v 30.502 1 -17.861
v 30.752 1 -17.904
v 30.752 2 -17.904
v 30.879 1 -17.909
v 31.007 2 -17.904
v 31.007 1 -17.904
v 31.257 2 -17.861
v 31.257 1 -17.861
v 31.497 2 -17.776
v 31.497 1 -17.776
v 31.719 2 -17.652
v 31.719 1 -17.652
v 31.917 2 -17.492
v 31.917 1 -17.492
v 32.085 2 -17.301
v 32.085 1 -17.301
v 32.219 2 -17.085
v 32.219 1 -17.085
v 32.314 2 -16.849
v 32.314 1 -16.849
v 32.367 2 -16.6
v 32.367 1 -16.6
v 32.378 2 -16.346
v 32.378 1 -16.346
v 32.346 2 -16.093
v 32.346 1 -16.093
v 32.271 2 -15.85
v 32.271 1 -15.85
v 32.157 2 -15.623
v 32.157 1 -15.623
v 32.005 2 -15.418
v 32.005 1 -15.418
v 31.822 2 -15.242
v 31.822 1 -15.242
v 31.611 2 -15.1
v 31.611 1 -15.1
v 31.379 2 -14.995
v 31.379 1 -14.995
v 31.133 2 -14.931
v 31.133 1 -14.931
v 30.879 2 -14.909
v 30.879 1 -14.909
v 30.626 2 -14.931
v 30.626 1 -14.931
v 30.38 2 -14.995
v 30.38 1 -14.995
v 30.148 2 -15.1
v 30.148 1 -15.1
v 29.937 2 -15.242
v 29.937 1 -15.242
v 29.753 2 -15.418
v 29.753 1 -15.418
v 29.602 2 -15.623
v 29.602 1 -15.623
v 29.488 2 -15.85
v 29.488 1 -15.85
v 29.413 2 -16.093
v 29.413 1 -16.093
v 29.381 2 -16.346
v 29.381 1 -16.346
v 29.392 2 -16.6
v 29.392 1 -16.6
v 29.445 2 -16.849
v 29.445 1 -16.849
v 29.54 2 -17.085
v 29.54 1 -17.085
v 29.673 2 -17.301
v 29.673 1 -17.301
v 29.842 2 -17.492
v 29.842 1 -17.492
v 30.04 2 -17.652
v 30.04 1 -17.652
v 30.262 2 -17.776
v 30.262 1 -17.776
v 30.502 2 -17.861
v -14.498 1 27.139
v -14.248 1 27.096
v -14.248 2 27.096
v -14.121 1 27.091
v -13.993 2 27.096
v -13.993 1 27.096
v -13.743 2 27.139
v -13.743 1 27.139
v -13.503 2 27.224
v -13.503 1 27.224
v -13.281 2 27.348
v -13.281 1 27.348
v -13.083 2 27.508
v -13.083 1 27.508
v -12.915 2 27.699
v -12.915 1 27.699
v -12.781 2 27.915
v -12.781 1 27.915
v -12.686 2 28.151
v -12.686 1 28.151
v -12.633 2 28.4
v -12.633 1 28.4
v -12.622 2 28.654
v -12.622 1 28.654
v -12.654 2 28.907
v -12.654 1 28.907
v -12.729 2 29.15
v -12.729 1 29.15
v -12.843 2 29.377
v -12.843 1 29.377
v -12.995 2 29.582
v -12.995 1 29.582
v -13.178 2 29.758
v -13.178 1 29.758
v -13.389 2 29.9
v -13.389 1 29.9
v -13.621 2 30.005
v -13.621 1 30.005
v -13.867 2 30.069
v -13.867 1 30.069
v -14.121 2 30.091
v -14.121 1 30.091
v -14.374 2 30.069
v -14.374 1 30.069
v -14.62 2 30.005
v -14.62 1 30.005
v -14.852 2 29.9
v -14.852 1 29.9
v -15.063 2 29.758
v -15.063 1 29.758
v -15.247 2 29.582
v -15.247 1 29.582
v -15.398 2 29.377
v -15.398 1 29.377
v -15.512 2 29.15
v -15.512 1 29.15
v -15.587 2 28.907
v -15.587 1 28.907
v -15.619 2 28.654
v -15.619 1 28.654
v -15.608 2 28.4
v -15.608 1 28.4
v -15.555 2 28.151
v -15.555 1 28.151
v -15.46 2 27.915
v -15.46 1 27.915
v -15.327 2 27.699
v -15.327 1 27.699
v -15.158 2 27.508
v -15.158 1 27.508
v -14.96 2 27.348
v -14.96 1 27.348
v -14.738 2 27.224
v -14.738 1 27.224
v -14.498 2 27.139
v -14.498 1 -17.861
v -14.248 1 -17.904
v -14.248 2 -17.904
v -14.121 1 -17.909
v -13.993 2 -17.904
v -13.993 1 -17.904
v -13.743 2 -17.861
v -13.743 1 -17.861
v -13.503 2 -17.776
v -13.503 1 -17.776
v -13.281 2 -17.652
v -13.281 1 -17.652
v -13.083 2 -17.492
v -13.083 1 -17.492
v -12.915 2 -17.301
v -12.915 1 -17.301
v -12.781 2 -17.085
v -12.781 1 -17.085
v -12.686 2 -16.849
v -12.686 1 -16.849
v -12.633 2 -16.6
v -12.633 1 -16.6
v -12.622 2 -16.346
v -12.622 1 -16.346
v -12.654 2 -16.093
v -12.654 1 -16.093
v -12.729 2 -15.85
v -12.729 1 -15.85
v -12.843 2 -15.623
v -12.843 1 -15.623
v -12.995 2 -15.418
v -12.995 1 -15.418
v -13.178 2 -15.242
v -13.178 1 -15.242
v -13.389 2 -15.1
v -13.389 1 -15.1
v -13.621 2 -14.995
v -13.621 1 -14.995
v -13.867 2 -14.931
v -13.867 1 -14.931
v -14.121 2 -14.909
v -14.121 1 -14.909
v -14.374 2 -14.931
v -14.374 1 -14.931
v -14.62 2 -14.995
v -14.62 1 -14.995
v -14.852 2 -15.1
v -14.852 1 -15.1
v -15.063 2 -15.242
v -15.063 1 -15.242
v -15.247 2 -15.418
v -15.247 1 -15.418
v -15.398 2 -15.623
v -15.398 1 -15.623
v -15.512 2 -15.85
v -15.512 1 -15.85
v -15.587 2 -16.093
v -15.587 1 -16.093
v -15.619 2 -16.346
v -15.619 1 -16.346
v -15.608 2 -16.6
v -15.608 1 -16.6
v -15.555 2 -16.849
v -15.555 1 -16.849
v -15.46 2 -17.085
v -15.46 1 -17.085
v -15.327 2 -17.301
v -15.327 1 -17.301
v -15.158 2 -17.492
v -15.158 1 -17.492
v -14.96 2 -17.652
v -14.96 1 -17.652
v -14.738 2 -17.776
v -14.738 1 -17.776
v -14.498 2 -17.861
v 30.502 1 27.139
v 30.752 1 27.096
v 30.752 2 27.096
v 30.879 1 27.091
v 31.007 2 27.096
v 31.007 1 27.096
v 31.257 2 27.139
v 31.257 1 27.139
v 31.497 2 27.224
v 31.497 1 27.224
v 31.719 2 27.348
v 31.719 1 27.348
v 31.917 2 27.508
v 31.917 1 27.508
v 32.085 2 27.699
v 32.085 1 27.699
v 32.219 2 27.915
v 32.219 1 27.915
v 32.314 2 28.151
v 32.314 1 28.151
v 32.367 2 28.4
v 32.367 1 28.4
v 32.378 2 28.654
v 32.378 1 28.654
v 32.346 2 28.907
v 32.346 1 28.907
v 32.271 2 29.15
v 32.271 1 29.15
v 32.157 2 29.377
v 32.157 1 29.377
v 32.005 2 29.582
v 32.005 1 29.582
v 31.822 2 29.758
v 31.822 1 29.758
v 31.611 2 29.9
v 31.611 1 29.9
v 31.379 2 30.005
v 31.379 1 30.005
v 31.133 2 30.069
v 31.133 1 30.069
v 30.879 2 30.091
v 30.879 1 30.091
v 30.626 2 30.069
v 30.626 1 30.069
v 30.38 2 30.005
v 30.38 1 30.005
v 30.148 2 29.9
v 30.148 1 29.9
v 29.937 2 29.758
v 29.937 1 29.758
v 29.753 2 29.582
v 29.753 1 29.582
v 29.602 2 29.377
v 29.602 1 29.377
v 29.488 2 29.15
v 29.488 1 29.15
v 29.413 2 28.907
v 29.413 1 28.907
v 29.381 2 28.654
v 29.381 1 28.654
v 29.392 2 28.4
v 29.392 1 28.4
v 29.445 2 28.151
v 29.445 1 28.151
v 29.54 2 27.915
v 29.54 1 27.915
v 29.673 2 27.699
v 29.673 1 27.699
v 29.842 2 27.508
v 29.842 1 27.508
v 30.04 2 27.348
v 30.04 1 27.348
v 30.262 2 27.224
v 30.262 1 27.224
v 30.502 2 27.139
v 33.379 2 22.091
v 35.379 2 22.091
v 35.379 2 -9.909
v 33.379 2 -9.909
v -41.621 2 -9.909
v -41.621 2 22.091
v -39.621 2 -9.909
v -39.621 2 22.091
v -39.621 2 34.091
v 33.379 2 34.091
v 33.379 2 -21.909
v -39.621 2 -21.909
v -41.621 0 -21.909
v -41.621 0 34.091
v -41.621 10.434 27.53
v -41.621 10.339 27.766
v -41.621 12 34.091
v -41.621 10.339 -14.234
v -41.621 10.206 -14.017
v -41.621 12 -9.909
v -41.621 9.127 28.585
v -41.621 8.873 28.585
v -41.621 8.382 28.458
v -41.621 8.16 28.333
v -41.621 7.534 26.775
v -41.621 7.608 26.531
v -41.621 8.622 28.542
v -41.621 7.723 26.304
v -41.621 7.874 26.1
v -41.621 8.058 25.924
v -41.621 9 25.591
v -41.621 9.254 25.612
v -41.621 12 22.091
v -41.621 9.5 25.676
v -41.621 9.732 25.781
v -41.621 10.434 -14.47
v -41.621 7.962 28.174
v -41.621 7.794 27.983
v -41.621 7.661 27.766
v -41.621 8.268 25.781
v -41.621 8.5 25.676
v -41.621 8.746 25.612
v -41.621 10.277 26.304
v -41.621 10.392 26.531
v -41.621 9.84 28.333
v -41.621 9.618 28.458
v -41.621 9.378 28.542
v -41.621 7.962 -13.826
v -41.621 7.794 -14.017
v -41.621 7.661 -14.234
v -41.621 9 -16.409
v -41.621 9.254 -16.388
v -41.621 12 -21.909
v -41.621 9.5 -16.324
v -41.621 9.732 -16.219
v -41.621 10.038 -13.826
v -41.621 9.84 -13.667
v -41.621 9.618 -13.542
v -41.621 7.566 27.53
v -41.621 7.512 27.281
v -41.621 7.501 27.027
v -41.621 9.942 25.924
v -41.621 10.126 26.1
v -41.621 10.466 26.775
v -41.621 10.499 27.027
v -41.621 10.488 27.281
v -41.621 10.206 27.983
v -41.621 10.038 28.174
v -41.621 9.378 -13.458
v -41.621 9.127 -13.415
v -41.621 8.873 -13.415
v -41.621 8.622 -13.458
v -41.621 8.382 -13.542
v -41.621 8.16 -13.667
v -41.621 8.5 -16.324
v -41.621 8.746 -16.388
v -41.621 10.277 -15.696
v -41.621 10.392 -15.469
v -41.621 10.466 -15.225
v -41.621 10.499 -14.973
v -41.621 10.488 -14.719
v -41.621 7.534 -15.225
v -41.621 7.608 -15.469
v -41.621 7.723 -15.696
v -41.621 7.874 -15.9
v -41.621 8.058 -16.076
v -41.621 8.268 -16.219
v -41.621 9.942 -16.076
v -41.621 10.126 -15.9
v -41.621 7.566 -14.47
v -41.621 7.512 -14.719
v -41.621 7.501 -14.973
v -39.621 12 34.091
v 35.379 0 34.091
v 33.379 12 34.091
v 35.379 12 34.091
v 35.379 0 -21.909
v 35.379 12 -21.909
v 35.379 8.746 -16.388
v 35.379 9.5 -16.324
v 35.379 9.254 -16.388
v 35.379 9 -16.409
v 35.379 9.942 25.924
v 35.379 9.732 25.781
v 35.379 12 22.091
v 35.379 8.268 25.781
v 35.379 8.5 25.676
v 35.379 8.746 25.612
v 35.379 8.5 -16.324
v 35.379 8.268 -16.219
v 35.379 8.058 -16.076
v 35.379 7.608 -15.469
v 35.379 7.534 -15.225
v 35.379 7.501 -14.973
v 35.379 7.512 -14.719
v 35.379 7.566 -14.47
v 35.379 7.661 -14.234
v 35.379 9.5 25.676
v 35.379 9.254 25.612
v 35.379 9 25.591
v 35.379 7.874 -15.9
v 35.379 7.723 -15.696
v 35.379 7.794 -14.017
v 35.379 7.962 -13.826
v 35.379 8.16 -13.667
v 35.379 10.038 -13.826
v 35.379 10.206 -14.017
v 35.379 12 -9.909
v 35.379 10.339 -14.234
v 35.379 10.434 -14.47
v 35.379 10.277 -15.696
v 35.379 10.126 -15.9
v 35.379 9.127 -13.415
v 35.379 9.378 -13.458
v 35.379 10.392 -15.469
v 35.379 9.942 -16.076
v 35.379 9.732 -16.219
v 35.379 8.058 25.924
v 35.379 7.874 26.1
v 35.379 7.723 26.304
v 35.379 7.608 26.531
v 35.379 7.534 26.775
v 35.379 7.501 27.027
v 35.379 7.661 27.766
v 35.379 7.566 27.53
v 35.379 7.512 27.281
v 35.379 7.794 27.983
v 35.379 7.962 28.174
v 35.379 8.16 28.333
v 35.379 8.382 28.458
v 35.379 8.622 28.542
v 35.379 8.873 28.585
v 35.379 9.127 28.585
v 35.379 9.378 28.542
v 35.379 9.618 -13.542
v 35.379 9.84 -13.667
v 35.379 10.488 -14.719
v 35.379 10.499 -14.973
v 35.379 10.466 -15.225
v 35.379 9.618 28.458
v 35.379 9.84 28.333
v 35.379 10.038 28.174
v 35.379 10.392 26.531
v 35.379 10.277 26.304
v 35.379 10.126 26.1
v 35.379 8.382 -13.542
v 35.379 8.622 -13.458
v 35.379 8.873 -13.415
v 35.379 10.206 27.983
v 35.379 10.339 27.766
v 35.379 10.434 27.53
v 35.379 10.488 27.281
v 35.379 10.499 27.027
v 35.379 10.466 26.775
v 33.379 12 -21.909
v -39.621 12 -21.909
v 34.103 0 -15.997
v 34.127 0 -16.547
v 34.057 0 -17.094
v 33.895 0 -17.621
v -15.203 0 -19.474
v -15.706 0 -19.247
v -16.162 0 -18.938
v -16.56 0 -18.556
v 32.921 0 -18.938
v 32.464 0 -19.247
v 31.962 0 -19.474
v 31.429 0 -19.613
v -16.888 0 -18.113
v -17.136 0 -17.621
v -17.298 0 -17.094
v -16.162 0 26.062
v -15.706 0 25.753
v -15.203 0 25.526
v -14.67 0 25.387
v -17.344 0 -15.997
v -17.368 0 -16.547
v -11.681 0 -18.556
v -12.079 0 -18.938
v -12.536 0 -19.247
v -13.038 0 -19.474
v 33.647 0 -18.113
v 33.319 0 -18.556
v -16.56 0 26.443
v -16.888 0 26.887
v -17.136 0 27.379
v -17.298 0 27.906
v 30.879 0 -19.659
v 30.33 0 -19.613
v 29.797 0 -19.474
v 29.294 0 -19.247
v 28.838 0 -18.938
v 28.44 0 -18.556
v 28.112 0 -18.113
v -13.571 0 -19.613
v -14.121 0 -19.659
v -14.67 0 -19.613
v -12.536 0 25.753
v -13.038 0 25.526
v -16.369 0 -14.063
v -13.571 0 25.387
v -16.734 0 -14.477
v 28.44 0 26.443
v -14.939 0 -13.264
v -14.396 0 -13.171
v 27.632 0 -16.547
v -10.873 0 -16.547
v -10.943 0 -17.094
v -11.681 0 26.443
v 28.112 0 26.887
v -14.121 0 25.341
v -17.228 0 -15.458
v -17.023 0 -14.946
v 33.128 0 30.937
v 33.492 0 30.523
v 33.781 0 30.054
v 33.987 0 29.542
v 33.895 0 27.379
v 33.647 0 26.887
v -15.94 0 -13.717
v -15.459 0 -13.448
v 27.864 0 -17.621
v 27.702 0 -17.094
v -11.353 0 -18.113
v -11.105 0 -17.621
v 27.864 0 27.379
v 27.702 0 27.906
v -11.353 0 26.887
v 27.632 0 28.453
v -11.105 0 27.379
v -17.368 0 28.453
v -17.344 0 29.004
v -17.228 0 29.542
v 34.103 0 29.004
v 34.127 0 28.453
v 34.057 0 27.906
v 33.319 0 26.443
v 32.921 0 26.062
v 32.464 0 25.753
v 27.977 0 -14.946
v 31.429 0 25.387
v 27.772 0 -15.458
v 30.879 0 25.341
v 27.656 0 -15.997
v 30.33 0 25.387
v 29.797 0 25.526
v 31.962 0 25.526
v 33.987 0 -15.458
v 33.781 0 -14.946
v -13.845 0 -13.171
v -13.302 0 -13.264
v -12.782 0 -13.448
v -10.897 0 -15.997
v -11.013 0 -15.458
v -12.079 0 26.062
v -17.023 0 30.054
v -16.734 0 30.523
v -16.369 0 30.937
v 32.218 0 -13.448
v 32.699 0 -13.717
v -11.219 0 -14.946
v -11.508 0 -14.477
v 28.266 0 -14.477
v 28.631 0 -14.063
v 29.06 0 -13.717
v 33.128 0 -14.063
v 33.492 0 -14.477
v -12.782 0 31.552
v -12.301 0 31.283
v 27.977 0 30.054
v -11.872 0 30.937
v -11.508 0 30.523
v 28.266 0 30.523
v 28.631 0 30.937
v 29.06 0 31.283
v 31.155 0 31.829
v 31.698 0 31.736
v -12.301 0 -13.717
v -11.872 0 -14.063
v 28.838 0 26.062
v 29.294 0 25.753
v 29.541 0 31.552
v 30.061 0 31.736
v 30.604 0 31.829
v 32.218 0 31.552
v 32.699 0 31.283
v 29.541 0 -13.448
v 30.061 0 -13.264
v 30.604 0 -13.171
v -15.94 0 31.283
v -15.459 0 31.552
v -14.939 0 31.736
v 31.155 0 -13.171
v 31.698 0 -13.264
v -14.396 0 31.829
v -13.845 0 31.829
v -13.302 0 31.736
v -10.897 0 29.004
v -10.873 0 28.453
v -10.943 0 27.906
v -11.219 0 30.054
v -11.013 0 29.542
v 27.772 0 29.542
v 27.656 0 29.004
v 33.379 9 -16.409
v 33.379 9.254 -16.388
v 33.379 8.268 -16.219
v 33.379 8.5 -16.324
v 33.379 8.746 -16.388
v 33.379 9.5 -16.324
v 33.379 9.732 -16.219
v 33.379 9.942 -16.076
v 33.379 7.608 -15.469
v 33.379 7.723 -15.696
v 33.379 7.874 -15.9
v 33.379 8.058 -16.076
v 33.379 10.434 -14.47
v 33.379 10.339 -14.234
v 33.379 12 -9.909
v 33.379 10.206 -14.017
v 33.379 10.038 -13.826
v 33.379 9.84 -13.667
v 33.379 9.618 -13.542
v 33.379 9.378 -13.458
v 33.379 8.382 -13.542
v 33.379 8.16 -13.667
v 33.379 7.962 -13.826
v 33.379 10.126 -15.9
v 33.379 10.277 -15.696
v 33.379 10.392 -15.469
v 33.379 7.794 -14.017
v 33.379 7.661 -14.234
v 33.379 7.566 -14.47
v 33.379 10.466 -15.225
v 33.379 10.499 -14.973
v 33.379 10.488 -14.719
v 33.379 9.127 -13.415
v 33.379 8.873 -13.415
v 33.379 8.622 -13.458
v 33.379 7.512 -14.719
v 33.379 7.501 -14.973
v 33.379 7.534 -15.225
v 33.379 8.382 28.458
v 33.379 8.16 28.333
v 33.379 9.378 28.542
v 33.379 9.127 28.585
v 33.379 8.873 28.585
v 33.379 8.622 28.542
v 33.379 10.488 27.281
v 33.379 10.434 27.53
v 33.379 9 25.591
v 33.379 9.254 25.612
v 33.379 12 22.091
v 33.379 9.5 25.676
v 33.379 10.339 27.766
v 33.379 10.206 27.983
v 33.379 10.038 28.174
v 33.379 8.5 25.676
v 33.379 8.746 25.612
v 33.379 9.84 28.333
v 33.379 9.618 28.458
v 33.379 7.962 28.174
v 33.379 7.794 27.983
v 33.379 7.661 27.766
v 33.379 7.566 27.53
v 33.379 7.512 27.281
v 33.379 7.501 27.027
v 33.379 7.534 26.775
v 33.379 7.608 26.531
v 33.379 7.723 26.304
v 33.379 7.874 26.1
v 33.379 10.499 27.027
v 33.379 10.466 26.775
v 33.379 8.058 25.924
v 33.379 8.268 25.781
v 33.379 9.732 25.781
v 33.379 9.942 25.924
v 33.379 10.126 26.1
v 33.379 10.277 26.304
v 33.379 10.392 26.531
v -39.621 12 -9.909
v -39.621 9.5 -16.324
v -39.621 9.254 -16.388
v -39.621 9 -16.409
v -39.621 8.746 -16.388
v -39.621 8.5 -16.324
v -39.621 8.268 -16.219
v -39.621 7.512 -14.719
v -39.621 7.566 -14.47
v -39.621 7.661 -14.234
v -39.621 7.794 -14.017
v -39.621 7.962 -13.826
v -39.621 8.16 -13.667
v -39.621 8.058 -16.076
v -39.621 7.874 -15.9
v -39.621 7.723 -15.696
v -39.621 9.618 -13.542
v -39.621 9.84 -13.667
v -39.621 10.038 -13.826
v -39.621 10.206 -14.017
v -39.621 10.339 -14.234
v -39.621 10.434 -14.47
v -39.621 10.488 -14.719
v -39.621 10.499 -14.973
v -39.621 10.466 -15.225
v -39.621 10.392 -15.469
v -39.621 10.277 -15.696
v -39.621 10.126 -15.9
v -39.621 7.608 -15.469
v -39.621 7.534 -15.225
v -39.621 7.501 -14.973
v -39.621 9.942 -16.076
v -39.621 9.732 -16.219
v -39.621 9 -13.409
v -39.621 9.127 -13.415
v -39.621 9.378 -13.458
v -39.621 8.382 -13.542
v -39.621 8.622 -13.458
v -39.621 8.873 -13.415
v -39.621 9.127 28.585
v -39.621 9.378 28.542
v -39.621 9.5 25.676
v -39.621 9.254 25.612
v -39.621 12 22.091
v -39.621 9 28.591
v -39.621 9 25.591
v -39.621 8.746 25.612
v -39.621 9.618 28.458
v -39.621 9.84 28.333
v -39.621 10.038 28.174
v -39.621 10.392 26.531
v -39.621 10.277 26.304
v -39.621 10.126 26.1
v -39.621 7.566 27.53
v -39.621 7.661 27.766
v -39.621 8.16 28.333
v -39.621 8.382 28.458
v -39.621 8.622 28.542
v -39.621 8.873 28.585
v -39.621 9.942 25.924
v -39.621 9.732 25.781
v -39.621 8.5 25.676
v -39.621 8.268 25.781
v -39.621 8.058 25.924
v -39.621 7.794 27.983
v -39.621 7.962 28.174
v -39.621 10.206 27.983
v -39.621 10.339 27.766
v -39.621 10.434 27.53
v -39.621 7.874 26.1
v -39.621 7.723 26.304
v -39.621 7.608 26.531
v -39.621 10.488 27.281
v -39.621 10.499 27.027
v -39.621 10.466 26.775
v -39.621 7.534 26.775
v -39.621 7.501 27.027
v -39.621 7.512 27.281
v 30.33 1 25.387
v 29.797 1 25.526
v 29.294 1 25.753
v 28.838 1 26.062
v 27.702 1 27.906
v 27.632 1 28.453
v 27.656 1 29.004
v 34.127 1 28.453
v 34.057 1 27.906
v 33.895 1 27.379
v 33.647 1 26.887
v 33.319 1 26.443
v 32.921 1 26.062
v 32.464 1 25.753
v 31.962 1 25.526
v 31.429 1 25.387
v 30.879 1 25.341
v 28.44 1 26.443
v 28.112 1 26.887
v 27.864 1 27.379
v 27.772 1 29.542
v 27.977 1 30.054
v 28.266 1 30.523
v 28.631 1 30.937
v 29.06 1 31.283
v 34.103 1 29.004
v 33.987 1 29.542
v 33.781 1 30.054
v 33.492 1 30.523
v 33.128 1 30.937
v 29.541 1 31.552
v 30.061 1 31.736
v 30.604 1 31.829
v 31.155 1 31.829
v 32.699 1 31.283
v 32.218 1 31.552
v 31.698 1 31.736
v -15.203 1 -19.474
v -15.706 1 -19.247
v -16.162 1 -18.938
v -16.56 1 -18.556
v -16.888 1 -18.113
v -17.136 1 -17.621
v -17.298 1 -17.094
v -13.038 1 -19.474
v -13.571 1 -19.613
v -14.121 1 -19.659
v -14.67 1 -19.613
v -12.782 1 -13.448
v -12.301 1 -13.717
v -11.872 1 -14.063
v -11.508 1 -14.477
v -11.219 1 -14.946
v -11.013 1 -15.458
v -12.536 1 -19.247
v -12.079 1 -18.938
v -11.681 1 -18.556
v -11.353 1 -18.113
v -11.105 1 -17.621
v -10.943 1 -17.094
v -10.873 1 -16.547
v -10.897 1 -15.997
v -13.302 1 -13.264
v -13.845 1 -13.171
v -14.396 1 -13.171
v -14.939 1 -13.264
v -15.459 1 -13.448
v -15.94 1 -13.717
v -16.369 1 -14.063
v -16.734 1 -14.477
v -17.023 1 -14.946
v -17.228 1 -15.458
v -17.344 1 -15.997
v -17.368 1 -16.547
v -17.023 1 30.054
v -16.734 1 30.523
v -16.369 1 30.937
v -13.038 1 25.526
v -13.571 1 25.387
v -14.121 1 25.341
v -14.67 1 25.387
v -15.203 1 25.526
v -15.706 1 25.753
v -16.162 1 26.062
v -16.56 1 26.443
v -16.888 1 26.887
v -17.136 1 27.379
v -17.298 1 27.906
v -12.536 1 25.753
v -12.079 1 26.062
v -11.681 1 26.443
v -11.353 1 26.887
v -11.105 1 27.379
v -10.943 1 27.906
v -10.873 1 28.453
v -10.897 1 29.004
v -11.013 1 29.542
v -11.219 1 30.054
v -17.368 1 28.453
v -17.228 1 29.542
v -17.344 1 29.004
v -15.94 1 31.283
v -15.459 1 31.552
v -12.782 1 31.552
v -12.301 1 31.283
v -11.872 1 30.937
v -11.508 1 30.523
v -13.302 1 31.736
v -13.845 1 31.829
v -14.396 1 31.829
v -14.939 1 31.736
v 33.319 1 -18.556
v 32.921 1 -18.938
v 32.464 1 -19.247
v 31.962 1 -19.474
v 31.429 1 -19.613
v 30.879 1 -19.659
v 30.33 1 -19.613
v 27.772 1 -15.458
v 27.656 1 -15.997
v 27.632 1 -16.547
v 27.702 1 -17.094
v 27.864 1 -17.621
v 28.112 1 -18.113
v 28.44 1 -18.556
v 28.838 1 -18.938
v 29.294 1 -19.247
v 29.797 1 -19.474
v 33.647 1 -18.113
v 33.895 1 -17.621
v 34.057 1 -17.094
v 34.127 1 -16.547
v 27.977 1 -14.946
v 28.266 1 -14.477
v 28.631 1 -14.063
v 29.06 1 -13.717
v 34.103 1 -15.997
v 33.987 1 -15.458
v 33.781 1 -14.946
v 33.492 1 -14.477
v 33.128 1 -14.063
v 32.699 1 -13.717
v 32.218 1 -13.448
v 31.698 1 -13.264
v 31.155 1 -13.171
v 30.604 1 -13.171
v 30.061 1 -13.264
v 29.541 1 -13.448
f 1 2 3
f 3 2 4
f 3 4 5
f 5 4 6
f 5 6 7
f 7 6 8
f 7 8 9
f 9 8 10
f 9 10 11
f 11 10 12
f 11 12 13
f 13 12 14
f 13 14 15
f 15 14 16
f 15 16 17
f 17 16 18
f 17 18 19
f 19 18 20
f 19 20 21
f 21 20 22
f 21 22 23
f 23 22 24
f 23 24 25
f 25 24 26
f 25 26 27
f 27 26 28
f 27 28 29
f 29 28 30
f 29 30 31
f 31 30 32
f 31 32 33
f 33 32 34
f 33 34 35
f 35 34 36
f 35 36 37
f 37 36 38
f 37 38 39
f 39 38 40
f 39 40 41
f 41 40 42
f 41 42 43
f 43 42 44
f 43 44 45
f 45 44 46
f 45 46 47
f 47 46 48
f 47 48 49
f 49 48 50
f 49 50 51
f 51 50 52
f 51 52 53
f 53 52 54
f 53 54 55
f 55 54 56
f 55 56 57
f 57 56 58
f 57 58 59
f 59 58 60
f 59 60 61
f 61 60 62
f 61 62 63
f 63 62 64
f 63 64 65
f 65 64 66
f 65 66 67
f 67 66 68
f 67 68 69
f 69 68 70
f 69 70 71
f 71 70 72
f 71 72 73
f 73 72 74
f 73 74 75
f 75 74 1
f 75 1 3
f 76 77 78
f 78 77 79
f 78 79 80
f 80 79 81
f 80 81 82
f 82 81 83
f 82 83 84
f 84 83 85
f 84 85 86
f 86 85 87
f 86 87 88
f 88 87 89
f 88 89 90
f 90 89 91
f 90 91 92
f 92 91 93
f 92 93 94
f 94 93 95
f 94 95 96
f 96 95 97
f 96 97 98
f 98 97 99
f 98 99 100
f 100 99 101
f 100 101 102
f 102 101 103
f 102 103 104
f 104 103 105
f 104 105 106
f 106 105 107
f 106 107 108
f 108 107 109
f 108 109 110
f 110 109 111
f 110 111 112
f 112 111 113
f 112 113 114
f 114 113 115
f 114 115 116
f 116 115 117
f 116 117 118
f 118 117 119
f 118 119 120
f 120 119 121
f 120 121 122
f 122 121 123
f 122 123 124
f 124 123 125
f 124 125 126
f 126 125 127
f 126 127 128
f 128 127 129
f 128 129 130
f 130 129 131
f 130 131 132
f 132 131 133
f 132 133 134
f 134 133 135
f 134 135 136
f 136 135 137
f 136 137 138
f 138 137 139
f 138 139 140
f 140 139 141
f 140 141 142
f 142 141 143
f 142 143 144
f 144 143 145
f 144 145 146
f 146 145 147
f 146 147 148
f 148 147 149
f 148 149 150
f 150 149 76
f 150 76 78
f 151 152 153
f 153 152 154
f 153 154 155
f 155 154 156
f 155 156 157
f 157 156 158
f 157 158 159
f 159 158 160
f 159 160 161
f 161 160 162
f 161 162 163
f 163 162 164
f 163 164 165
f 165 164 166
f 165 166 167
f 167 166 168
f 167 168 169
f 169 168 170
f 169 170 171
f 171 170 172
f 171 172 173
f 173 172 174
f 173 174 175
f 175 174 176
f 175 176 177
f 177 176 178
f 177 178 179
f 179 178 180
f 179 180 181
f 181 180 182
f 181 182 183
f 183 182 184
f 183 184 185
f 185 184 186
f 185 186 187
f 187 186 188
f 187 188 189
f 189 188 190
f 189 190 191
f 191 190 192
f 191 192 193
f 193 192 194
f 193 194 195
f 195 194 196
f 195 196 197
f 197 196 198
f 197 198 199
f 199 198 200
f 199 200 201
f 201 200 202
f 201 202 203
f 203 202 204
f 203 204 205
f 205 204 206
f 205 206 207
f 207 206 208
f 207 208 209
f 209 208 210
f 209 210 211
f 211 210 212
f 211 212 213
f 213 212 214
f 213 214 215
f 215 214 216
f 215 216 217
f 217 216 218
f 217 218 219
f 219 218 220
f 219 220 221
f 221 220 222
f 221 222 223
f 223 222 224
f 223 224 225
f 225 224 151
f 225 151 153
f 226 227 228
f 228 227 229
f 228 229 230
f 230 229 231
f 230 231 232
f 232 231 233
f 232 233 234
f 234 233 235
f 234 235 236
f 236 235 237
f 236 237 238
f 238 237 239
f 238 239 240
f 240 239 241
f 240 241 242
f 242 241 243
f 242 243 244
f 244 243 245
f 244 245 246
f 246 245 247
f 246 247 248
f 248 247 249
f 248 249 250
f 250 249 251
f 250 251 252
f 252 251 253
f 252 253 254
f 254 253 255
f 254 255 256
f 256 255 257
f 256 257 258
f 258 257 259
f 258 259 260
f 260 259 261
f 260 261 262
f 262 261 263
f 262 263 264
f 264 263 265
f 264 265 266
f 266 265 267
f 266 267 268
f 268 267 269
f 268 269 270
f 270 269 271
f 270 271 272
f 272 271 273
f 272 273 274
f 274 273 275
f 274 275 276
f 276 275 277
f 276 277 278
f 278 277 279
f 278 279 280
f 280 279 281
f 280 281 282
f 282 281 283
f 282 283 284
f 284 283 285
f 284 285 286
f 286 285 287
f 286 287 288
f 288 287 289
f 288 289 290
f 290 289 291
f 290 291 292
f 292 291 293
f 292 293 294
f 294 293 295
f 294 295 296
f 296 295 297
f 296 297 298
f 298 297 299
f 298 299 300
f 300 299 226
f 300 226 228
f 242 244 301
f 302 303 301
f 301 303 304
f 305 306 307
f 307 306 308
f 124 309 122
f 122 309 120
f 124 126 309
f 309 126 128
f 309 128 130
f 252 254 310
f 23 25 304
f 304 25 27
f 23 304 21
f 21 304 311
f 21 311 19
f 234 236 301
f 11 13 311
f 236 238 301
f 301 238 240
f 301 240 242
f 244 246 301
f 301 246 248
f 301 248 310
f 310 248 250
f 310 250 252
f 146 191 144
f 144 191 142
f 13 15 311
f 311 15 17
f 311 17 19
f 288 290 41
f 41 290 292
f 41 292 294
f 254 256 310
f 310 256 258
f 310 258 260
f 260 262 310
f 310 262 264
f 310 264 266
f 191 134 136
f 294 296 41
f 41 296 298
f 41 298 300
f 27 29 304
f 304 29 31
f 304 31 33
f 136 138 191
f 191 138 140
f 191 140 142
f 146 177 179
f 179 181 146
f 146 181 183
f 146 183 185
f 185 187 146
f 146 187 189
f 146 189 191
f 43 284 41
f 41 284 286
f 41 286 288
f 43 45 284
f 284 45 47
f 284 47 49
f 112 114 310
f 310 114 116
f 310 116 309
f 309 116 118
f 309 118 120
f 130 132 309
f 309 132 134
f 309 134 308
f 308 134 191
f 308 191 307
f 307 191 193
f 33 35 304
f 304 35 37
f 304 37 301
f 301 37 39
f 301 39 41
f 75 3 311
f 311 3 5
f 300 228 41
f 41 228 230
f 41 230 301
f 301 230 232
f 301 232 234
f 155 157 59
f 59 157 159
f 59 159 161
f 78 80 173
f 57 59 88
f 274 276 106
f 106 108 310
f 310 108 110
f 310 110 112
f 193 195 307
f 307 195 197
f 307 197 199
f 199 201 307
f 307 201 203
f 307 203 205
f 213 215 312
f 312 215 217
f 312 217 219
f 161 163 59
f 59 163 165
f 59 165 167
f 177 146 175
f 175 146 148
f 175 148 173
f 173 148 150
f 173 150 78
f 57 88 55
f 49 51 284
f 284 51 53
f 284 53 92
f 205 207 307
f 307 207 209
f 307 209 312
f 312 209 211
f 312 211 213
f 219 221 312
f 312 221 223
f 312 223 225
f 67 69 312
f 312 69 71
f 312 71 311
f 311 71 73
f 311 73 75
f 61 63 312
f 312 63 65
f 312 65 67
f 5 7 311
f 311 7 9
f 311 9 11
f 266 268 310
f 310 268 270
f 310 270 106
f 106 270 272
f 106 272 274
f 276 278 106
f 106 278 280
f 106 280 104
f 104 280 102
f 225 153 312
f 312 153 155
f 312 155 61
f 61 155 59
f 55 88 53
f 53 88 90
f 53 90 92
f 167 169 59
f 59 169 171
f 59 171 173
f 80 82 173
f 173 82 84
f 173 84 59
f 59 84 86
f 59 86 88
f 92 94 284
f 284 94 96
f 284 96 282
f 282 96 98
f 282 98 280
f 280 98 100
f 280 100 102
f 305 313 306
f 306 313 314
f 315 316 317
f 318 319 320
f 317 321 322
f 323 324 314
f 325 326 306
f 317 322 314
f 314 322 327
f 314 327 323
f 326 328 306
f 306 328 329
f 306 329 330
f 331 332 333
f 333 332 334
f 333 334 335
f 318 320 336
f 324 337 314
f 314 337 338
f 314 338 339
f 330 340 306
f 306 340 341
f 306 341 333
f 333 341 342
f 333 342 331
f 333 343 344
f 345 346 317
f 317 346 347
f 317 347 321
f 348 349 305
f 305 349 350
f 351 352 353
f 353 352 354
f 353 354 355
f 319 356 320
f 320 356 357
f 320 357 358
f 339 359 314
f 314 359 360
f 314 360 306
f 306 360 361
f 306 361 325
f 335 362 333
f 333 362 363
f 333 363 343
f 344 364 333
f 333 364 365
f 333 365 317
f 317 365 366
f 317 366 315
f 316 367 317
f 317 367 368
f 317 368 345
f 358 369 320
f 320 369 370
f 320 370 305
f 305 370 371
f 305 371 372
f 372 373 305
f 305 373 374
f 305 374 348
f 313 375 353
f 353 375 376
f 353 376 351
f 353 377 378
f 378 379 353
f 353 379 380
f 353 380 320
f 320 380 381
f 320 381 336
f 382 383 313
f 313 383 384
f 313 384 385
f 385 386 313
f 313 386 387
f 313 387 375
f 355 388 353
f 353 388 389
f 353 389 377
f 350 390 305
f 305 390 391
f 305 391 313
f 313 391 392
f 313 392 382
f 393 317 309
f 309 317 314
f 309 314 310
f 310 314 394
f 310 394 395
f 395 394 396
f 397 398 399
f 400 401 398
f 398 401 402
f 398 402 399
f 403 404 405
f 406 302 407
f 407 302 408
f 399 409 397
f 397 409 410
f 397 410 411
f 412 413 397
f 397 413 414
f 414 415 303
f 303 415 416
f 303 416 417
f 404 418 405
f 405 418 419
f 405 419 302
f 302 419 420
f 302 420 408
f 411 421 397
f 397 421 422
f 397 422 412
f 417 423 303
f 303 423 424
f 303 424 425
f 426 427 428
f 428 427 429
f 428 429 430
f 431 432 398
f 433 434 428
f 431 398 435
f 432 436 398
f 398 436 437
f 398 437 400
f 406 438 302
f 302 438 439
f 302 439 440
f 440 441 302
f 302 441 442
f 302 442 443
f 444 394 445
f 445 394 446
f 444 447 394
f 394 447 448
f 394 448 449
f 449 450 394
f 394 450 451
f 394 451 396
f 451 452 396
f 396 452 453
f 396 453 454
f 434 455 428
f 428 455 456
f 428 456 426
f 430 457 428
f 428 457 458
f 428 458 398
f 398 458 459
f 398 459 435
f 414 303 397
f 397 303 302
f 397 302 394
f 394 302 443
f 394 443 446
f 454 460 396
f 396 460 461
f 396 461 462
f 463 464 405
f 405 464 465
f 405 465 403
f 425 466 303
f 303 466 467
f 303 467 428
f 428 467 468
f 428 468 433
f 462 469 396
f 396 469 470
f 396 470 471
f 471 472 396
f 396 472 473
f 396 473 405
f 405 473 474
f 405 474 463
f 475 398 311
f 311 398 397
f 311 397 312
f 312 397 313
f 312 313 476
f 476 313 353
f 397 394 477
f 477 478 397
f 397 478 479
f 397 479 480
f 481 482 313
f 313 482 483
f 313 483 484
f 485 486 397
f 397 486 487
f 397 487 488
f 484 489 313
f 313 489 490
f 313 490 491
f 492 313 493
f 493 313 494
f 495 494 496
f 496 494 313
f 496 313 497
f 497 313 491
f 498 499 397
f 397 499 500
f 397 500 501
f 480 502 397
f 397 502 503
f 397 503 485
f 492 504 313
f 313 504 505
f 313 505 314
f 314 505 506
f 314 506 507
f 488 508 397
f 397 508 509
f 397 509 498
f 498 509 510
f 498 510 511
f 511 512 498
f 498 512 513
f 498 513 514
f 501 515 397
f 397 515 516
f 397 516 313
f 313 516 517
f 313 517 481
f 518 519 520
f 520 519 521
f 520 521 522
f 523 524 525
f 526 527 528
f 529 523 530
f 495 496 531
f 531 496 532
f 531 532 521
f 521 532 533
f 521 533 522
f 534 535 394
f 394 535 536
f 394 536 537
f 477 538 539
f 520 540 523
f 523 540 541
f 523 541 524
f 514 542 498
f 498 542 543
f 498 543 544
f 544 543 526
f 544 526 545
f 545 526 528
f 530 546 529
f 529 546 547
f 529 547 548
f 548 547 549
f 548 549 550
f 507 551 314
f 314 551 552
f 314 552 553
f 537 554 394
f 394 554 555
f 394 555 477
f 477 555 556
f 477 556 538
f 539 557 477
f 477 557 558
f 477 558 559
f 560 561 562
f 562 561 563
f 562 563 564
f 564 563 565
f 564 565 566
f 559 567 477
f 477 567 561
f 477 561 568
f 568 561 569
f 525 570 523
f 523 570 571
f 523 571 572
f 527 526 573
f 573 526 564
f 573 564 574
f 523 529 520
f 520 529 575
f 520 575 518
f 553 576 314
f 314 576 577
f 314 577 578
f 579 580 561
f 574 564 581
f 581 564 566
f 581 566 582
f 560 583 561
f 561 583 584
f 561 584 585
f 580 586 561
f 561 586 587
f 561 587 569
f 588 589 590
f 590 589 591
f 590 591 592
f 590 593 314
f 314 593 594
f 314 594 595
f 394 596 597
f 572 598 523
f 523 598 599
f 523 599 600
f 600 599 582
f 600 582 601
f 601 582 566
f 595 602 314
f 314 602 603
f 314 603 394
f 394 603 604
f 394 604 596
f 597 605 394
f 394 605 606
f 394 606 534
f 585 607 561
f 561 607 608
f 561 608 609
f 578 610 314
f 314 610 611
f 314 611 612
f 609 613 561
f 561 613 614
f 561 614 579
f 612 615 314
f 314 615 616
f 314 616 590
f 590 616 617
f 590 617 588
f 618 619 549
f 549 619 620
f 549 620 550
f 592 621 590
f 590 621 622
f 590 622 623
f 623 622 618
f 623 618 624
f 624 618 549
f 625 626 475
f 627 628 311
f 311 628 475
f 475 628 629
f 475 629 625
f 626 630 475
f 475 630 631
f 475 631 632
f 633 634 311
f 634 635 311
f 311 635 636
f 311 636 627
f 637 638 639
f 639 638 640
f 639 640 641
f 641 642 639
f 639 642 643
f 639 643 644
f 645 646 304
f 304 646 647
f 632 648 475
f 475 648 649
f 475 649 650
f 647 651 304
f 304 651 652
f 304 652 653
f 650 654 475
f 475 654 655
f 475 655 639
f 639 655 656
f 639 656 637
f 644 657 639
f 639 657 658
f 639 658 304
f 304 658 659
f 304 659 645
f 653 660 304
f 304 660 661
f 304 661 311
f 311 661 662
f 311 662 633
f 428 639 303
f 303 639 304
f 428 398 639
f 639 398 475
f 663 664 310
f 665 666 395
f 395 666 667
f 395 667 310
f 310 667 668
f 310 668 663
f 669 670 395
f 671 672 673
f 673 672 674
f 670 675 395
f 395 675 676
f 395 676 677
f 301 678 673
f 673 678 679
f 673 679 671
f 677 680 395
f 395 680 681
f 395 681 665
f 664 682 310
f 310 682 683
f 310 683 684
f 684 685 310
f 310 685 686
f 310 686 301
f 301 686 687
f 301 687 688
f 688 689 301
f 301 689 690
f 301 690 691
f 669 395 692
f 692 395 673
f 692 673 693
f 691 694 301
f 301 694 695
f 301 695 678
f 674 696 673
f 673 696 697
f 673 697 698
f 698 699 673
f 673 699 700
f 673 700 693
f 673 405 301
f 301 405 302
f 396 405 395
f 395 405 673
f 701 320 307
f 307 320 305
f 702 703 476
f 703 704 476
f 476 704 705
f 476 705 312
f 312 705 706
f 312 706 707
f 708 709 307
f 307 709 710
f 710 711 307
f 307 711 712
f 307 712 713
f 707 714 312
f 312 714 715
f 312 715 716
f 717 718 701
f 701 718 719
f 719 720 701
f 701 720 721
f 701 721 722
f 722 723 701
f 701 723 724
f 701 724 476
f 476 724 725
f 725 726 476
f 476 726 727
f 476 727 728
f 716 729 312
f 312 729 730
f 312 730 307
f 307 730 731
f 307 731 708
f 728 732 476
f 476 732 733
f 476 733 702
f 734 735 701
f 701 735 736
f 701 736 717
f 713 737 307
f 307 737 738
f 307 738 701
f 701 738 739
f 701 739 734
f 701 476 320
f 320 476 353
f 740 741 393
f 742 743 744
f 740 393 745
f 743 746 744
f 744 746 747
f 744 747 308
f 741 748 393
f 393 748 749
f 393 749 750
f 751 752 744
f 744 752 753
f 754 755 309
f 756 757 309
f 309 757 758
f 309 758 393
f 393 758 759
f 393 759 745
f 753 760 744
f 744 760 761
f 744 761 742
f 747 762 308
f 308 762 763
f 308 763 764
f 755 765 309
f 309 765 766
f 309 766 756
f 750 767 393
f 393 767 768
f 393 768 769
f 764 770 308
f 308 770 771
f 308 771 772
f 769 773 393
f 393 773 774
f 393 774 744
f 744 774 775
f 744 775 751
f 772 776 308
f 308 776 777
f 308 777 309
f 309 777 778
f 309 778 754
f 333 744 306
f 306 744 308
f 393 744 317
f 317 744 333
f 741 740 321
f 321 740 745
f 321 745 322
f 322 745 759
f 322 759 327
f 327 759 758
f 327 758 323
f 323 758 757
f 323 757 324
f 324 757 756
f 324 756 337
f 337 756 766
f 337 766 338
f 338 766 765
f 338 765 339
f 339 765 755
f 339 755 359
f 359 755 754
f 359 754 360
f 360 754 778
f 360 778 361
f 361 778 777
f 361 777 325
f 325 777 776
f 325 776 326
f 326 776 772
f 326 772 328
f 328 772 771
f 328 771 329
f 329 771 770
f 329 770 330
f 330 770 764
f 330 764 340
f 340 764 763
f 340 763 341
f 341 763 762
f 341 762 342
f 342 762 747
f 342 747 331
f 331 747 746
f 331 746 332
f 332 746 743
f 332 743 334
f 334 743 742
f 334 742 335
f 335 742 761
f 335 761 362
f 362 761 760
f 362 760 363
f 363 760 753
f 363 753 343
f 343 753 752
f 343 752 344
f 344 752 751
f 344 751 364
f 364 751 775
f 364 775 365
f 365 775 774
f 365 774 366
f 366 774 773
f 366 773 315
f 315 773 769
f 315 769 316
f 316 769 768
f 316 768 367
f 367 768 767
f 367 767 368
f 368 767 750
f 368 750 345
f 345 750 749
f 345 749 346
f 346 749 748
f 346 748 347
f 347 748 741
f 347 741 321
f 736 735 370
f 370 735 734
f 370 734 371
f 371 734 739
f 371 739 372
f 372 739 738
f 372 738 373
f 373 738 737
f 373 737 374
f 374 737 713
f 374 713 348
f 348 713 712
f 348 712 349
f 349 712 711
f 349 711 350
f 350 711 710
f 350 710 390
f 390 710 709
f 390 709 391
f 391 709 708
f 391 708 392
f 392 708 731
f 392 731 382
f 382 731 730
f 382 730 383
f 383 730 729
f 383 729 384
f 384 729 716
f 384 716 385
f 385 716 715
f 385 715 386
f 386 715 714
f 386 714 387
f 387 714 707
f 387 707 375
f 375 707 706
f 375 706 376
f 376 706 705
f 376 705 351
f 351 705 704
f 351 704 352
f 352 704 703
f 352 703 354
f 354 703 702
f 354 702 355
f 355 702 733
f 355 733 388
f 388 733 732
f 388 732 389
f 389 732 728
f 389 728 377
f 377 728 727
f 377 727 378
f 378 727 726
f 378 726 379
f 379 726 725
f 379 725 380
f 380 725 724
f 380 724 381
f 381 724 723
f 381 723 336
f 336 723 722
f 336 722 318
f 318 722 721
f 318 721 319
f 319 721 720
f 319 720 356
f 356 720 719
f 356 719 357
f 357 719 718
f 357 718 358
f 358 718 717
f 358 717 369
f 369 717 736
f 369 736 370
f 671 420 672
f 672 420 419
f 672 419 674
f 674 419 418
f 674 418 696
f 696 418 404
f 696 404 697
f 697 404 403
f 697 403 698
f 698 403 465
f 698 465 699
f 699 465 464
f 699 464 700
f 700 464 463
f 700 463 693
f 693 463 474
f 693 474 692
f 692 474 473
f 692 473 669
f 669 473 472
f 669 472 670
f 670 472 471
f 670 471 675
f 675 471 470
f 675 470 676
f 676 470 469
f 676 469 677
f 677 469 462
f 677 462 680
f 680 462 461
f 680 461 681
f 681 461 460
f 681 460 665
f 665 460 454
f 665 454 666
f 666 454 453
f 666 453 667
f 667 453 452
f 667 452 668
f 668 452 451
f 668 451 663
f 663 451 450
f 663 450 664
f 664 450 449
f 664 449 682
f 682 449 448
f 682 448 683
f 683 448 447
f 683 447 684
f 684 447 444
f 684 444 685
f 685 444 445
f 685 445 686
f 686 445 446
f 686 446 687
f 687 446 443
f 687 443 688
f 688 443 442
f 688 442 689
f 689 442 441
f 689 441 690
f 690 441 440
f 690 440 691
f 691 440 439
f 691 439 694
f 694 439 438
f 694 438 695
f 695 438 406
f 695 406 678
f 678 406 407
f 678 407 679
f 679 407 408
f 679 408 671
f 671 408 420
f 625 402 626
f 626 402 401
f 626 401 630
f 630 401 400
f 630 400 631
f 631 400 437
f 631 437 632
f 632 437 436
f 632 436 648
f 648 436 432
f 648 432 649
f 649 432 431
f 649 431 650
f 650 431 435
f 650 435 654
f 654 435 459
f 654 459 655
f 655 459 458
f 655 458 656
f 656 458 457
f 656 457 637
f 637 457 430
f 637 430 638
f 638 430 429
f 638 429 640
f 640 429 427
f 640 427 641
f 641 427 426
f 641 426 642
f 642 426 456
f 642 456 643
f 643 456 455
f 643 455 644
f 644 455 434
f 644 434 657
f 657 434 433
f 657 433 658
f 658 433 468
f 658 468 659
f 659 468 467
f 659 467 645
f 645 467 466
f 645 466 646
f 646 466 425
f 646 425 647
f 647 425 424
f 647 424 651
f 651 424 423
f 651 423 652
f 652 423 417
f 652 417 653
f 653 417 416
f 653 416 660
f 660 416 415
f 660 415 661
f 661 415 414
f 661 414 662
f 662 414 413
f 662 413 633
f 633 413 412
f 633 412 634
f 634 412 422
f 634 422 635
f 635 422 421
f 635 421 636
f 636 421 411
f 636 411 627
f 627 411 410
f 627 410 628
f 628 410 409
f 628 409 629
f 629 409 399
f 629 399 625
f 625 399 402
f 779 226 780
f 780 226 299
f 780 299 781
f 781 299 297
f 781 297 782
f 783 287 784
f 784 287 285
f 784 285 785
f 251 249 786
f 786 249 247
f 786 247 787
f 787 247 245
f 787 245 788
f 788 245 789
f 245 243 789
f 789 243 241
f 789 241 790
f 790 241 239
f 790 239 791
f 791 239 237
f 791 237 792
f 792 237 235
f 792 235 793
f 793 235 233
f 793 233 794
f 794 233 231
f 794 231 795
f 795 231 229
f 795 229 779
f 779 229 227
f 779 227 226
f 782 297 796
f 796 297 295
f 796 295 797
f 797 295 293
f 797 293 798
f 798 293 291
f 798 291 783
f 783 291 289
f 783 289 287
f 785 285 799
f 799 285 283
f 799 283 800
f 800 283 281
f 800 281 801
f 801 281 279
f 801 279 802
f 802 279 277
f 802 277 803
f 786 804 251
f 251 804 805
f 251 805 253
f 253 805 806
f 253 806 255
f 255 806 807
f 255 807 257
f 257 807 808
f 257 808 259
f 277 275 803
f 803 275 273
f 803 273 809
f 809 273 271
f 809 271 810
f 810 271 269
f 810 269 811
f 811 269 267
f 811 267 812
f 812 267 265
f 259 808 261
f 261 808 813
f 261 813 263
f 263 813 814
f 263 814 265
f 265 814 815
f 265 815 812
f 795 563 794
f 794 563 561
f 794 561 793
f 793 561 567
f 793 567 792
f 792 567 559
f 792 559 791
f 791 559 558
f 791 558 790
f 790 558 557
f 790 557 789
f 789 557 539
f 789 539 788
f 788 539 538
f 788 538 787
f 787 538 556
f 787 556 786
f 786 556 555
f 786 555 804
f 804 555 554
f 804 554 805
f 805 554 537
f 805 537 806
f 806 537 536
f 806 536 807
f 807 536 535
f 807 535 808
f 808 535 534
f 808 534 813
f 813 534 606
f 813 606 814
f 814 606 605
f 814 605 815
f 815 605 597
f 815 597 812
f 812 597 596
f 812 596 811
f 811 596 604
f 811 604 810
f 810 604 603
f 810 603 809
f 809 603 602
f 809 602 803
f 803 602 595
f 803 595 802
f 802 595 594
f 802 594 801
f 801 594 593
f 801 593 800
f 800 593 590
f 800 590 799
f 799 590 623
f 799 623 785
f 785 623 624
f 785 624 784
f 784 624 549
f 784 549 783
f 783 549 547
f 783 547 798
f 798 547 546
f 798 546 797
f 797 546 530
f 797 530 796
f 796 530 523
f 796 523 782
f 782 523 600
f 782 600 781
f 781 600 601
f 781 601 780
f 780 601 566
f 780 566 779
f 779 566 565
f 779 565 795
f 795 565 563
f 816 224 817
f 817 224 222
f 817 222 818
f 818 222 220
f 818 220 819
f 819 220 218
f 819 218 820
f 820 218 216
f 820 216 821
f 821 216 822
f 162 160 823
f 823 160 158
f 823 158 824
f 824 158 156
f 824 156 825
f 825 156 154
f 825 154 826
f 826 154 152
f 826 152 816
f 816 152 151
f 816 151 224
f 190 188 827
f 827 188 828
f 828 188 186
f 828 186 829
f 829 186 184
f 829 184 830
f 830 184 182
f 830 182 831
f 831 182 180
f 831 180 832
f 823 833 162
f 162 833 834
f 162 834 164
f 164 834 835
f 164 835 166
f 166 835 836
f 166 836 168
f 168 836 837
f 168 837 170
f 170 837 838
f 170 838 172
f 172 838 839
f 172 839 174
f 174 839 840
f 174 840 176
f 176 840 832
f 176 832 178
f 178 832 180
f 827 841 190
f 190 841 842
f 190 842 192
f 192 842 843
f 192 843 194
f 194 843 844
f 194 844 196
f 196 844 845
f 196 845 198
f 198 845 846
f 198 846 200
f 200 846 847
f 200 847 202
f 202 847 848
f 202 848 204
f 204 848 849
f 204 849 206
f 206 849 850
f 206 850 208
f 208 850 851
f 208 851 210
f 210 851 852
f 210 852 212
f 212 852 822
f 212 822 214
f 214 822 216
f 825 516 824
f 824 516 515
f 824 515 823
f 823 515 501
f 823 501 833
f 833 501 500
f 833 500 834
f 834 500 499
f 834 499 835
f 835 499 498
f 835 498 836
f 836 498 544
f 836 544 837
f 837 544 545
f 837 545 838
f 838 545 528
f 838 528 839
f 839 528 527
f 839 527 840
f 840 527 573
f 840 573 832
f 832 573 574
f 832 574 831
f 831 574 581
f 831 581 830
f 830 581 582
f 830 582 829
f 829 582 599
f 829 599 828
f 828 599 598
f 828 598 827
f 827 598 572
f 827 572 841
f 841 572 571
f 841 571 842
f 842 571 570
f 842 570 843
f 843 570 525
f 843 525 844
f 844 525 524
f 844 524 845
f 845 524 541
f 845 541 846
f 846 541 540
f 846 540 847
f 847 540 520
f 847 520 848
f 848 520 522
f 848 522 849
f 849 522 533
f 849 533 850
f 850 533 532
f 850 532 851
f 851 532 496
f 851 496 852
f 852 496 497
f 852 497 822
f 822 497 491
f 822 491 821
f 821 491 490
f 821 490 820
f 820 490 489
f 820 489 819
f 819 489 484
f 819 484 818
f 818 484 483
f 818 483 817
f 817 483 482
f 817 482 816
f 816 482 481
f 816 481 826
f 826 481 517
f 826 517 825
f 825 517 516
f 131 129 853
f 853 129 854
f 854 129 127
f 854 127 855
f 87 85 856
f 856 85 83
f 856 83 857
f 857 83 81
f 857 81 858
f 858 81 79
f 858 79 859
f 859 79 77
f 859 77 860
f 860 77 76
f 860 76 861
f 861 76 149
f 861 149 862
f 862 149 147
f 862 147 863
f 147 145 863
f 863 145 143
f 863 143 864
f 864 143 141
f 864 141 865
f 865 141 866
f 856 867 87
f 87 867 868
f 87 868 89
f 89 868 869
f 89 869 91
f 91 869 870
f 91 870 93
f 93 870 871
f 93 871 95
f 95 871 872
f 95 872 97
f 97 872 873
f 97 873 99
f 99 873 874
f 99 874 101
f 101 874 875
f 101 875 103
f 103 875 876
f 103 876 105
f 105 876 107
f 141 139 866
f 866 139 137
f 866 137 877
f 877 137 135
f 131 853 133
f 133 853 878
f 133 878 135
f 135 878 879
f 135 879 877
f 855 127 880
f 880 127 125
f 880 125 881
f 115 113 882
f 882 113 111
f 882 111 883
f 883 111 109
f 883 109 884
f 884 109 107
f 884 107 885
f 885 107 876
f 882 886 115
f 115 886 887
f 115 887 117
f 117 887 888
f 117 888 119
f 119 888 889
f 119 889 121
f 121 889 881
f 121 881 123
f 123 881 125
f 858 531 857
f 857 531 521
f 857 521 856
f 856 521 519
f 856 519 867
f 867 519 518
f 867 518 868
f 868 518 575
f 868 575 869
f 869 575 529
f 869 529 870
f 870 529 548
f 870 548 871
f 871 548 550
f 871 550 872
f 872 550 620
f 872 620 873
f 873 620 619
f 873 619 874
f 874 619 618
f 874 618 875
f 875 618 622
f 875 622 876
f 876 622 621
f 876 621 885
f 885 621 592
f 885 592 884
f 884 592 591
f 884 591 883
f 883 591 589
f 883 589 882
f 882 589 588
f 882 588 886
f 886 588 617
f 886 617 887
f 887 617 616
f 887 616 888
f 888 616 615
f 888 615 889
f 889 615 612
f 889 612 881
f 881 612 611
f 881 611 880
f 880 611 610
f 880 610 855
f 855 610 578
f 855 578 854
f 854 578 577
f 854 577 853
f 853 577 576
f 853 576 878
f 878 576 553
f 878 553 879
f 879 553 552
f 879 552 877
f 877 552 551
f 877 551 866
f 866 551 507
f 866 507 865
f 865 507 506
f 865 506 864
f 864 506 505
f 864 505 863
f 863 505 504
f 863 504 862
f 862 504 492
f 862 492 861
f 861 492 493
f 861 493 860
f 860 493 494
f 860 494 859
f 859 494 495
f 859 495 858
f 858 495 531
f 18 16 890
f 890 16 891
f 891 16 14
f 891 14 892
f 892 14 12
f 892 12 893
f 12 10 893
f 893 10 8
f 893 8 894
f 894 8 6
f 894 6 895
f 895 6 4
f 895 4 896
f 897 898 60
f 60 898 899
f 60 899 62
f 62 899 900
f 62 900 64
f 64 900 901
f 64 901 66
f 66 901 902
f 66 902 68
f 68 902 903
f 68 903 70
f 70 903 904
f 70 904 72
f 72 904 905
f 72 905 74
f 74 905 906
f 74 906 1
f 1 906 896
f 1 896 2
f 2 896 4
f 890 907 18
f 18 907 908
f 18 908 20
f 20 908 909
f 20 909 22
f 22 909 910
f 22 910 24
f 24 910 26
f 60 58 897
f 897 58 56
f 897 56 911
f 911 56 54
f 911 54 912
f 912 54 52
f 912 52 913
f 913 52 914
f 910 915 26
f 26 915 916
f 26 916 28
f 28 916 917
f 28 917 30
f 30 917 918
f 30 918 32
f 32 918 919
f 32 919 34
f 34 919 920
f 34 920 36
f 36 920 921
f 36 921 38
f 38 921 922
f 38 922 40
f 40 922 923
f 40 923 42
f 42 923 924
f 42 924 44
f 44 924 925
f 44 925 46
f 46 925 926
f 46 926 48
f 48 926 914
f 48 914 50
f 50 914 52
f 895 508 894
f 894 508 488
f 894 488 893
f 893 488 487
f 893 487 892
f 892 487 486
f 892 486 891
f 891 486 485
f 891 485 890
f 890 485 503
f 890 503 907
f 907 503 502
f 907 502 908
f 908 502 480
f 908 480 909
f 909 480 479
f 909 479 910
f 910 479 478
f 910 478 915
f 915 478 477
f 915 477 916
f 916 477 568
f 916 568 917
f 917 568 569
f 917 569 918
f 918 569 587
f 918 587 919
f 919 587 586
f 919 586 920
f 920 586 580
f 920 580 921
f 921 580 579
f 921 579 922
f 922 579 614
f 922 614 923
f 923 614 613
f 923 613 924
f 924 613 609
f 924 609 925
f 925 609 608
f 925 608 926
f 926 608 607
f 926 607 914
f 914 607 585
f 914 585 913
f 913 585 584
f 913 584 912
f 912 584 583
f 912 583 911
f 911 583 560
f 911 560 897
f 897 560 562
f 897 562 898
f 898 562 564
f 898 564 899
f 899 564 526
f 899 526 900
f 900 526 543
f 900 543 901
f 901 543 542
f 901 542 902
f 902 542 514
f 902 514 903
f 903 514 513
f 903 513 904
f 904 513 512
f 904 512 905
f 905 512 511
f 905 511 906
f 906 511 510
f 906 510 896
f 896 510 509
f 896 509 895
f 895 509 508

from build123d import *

# Parameters (mm, degrees)
SKETCH1_W           = 77
SKETCH1_H           = 56
BOSS_EXTRUDE1_DEPTH = 2
SKETCH2_R           = 1.5
CUT_EXTRUDE1_DEPTH  = 3
SKETCH3_W           = 2
SKETCH3_H           = 12
BOSS_EXTRUDE2_DEPTH = 10
SKETCH4_R           = 1.5
CUT_EXTRUDE2_DEPTH  = 78
SKETCH5_R           = 3.25
CUT_EXTRUDE3_DEPTH  = 1


with BuildPart() as part:
    # Sketch1 → Boss-Extrude1 (new body)
    with BuildSketch(Plane(origin=(0, 0, 0), x_dir=(1, 0, 0), z_dir=(0, 1, 0))):
        with Locations((-3.12052506, -6.090692124)):
            Rectangle(SKETCH1_W, SKETCH1_H)
    extrude(amount=BOSS_EXTRUDE1_DEPTH)

    # Sketch2 → Cut-Extrude1 (cut, through all)
    with BuildSketch(Plane(origin=(0, 2, 0), x_dir=(1, 0, 0), z_dir=(0, 1, 0))):
        with Locations((30.87947494, 16.409307876)):
            Circle(SKETCH2_R)
        with Locations((30.87947494, -28.590692124)):
            Circle(SKETCH2_R)
        with Locations((-14.12052506, 16.409307876)):
            Circle(SKETCH2_R)
        with Locations((-14.12052506, -28.590692124)):
            Circle(SKETCH2_R)
    extrude(amount=-CUT_EXTRUDE1_DEPTH, mode=Mode.SUBTRACT)

    # Sketch3 → Boss-Extrude2 (add)
    with BuildSketch(Plane(origin=(0, 2, 0), x_dir=(1, 0, 0), z_dir=(0, 1, 0))):
        with Locations((34.37947494, 15.909307876)):
            Rectangle(SKETCH3_W, SKETCH3_H)
        with Locations((34.37947494, -28.090692124)):
            Rectangle(SKETCH3_W, SKETCH3_H)
        with Locations((-40.62052506, 15.909307876)):
            Rectangle(SKETCH3_W, SKETCH3_H)
        with Locations((-40.62052506, -28.090692124)):
            Rectangle(SKETCH3_W, SKETCH3_H)
    extrude(amount=BOSS_EXTRUDE2_DEPTH)

    # Sketch4 → Cut-Extrude2 (cut, through all)
    with BuildSketch(Plane(origin=(35.37947494, 0, 0), x_dir=(0, 0, -1), z_dir=(1, 0, 0))):
        with Locations((-27.090692124, 9)):
            Circle(SKETCH4_R)
        with Locations((14.909307876, 9)):
            Circle(SKETCH4_R)
    extrude(amount=-CUT_EXTRUDE2_DEPTH, mode=Mode.SUBTRACT)

    # Sketch5 → Cut-Extrude3 (cut)
    with BuildSketch(Plane(origin=(0, 0, 0), x_dir=(-1, 0, 0), z_dir=(0, -1, 0))):
        with Locations((14.12052506, -28.590692124)):
            Circle(SKETCH5_R)
        with Locations((-30.87947494, -28.590692124)):
            Circle(SKETCH5_R)
        with Locations((-30.87947494, 16.409307876)):
            Circle(SKETCH5_R)
        with Locations((14.12052506, 16.409307876)):
            Circle(SKETCH5_R)
    extrude(amount=-CUT_EXTRUDE3_DEPTH, mode=Mode.SUBTRACT)


solid = part.part
